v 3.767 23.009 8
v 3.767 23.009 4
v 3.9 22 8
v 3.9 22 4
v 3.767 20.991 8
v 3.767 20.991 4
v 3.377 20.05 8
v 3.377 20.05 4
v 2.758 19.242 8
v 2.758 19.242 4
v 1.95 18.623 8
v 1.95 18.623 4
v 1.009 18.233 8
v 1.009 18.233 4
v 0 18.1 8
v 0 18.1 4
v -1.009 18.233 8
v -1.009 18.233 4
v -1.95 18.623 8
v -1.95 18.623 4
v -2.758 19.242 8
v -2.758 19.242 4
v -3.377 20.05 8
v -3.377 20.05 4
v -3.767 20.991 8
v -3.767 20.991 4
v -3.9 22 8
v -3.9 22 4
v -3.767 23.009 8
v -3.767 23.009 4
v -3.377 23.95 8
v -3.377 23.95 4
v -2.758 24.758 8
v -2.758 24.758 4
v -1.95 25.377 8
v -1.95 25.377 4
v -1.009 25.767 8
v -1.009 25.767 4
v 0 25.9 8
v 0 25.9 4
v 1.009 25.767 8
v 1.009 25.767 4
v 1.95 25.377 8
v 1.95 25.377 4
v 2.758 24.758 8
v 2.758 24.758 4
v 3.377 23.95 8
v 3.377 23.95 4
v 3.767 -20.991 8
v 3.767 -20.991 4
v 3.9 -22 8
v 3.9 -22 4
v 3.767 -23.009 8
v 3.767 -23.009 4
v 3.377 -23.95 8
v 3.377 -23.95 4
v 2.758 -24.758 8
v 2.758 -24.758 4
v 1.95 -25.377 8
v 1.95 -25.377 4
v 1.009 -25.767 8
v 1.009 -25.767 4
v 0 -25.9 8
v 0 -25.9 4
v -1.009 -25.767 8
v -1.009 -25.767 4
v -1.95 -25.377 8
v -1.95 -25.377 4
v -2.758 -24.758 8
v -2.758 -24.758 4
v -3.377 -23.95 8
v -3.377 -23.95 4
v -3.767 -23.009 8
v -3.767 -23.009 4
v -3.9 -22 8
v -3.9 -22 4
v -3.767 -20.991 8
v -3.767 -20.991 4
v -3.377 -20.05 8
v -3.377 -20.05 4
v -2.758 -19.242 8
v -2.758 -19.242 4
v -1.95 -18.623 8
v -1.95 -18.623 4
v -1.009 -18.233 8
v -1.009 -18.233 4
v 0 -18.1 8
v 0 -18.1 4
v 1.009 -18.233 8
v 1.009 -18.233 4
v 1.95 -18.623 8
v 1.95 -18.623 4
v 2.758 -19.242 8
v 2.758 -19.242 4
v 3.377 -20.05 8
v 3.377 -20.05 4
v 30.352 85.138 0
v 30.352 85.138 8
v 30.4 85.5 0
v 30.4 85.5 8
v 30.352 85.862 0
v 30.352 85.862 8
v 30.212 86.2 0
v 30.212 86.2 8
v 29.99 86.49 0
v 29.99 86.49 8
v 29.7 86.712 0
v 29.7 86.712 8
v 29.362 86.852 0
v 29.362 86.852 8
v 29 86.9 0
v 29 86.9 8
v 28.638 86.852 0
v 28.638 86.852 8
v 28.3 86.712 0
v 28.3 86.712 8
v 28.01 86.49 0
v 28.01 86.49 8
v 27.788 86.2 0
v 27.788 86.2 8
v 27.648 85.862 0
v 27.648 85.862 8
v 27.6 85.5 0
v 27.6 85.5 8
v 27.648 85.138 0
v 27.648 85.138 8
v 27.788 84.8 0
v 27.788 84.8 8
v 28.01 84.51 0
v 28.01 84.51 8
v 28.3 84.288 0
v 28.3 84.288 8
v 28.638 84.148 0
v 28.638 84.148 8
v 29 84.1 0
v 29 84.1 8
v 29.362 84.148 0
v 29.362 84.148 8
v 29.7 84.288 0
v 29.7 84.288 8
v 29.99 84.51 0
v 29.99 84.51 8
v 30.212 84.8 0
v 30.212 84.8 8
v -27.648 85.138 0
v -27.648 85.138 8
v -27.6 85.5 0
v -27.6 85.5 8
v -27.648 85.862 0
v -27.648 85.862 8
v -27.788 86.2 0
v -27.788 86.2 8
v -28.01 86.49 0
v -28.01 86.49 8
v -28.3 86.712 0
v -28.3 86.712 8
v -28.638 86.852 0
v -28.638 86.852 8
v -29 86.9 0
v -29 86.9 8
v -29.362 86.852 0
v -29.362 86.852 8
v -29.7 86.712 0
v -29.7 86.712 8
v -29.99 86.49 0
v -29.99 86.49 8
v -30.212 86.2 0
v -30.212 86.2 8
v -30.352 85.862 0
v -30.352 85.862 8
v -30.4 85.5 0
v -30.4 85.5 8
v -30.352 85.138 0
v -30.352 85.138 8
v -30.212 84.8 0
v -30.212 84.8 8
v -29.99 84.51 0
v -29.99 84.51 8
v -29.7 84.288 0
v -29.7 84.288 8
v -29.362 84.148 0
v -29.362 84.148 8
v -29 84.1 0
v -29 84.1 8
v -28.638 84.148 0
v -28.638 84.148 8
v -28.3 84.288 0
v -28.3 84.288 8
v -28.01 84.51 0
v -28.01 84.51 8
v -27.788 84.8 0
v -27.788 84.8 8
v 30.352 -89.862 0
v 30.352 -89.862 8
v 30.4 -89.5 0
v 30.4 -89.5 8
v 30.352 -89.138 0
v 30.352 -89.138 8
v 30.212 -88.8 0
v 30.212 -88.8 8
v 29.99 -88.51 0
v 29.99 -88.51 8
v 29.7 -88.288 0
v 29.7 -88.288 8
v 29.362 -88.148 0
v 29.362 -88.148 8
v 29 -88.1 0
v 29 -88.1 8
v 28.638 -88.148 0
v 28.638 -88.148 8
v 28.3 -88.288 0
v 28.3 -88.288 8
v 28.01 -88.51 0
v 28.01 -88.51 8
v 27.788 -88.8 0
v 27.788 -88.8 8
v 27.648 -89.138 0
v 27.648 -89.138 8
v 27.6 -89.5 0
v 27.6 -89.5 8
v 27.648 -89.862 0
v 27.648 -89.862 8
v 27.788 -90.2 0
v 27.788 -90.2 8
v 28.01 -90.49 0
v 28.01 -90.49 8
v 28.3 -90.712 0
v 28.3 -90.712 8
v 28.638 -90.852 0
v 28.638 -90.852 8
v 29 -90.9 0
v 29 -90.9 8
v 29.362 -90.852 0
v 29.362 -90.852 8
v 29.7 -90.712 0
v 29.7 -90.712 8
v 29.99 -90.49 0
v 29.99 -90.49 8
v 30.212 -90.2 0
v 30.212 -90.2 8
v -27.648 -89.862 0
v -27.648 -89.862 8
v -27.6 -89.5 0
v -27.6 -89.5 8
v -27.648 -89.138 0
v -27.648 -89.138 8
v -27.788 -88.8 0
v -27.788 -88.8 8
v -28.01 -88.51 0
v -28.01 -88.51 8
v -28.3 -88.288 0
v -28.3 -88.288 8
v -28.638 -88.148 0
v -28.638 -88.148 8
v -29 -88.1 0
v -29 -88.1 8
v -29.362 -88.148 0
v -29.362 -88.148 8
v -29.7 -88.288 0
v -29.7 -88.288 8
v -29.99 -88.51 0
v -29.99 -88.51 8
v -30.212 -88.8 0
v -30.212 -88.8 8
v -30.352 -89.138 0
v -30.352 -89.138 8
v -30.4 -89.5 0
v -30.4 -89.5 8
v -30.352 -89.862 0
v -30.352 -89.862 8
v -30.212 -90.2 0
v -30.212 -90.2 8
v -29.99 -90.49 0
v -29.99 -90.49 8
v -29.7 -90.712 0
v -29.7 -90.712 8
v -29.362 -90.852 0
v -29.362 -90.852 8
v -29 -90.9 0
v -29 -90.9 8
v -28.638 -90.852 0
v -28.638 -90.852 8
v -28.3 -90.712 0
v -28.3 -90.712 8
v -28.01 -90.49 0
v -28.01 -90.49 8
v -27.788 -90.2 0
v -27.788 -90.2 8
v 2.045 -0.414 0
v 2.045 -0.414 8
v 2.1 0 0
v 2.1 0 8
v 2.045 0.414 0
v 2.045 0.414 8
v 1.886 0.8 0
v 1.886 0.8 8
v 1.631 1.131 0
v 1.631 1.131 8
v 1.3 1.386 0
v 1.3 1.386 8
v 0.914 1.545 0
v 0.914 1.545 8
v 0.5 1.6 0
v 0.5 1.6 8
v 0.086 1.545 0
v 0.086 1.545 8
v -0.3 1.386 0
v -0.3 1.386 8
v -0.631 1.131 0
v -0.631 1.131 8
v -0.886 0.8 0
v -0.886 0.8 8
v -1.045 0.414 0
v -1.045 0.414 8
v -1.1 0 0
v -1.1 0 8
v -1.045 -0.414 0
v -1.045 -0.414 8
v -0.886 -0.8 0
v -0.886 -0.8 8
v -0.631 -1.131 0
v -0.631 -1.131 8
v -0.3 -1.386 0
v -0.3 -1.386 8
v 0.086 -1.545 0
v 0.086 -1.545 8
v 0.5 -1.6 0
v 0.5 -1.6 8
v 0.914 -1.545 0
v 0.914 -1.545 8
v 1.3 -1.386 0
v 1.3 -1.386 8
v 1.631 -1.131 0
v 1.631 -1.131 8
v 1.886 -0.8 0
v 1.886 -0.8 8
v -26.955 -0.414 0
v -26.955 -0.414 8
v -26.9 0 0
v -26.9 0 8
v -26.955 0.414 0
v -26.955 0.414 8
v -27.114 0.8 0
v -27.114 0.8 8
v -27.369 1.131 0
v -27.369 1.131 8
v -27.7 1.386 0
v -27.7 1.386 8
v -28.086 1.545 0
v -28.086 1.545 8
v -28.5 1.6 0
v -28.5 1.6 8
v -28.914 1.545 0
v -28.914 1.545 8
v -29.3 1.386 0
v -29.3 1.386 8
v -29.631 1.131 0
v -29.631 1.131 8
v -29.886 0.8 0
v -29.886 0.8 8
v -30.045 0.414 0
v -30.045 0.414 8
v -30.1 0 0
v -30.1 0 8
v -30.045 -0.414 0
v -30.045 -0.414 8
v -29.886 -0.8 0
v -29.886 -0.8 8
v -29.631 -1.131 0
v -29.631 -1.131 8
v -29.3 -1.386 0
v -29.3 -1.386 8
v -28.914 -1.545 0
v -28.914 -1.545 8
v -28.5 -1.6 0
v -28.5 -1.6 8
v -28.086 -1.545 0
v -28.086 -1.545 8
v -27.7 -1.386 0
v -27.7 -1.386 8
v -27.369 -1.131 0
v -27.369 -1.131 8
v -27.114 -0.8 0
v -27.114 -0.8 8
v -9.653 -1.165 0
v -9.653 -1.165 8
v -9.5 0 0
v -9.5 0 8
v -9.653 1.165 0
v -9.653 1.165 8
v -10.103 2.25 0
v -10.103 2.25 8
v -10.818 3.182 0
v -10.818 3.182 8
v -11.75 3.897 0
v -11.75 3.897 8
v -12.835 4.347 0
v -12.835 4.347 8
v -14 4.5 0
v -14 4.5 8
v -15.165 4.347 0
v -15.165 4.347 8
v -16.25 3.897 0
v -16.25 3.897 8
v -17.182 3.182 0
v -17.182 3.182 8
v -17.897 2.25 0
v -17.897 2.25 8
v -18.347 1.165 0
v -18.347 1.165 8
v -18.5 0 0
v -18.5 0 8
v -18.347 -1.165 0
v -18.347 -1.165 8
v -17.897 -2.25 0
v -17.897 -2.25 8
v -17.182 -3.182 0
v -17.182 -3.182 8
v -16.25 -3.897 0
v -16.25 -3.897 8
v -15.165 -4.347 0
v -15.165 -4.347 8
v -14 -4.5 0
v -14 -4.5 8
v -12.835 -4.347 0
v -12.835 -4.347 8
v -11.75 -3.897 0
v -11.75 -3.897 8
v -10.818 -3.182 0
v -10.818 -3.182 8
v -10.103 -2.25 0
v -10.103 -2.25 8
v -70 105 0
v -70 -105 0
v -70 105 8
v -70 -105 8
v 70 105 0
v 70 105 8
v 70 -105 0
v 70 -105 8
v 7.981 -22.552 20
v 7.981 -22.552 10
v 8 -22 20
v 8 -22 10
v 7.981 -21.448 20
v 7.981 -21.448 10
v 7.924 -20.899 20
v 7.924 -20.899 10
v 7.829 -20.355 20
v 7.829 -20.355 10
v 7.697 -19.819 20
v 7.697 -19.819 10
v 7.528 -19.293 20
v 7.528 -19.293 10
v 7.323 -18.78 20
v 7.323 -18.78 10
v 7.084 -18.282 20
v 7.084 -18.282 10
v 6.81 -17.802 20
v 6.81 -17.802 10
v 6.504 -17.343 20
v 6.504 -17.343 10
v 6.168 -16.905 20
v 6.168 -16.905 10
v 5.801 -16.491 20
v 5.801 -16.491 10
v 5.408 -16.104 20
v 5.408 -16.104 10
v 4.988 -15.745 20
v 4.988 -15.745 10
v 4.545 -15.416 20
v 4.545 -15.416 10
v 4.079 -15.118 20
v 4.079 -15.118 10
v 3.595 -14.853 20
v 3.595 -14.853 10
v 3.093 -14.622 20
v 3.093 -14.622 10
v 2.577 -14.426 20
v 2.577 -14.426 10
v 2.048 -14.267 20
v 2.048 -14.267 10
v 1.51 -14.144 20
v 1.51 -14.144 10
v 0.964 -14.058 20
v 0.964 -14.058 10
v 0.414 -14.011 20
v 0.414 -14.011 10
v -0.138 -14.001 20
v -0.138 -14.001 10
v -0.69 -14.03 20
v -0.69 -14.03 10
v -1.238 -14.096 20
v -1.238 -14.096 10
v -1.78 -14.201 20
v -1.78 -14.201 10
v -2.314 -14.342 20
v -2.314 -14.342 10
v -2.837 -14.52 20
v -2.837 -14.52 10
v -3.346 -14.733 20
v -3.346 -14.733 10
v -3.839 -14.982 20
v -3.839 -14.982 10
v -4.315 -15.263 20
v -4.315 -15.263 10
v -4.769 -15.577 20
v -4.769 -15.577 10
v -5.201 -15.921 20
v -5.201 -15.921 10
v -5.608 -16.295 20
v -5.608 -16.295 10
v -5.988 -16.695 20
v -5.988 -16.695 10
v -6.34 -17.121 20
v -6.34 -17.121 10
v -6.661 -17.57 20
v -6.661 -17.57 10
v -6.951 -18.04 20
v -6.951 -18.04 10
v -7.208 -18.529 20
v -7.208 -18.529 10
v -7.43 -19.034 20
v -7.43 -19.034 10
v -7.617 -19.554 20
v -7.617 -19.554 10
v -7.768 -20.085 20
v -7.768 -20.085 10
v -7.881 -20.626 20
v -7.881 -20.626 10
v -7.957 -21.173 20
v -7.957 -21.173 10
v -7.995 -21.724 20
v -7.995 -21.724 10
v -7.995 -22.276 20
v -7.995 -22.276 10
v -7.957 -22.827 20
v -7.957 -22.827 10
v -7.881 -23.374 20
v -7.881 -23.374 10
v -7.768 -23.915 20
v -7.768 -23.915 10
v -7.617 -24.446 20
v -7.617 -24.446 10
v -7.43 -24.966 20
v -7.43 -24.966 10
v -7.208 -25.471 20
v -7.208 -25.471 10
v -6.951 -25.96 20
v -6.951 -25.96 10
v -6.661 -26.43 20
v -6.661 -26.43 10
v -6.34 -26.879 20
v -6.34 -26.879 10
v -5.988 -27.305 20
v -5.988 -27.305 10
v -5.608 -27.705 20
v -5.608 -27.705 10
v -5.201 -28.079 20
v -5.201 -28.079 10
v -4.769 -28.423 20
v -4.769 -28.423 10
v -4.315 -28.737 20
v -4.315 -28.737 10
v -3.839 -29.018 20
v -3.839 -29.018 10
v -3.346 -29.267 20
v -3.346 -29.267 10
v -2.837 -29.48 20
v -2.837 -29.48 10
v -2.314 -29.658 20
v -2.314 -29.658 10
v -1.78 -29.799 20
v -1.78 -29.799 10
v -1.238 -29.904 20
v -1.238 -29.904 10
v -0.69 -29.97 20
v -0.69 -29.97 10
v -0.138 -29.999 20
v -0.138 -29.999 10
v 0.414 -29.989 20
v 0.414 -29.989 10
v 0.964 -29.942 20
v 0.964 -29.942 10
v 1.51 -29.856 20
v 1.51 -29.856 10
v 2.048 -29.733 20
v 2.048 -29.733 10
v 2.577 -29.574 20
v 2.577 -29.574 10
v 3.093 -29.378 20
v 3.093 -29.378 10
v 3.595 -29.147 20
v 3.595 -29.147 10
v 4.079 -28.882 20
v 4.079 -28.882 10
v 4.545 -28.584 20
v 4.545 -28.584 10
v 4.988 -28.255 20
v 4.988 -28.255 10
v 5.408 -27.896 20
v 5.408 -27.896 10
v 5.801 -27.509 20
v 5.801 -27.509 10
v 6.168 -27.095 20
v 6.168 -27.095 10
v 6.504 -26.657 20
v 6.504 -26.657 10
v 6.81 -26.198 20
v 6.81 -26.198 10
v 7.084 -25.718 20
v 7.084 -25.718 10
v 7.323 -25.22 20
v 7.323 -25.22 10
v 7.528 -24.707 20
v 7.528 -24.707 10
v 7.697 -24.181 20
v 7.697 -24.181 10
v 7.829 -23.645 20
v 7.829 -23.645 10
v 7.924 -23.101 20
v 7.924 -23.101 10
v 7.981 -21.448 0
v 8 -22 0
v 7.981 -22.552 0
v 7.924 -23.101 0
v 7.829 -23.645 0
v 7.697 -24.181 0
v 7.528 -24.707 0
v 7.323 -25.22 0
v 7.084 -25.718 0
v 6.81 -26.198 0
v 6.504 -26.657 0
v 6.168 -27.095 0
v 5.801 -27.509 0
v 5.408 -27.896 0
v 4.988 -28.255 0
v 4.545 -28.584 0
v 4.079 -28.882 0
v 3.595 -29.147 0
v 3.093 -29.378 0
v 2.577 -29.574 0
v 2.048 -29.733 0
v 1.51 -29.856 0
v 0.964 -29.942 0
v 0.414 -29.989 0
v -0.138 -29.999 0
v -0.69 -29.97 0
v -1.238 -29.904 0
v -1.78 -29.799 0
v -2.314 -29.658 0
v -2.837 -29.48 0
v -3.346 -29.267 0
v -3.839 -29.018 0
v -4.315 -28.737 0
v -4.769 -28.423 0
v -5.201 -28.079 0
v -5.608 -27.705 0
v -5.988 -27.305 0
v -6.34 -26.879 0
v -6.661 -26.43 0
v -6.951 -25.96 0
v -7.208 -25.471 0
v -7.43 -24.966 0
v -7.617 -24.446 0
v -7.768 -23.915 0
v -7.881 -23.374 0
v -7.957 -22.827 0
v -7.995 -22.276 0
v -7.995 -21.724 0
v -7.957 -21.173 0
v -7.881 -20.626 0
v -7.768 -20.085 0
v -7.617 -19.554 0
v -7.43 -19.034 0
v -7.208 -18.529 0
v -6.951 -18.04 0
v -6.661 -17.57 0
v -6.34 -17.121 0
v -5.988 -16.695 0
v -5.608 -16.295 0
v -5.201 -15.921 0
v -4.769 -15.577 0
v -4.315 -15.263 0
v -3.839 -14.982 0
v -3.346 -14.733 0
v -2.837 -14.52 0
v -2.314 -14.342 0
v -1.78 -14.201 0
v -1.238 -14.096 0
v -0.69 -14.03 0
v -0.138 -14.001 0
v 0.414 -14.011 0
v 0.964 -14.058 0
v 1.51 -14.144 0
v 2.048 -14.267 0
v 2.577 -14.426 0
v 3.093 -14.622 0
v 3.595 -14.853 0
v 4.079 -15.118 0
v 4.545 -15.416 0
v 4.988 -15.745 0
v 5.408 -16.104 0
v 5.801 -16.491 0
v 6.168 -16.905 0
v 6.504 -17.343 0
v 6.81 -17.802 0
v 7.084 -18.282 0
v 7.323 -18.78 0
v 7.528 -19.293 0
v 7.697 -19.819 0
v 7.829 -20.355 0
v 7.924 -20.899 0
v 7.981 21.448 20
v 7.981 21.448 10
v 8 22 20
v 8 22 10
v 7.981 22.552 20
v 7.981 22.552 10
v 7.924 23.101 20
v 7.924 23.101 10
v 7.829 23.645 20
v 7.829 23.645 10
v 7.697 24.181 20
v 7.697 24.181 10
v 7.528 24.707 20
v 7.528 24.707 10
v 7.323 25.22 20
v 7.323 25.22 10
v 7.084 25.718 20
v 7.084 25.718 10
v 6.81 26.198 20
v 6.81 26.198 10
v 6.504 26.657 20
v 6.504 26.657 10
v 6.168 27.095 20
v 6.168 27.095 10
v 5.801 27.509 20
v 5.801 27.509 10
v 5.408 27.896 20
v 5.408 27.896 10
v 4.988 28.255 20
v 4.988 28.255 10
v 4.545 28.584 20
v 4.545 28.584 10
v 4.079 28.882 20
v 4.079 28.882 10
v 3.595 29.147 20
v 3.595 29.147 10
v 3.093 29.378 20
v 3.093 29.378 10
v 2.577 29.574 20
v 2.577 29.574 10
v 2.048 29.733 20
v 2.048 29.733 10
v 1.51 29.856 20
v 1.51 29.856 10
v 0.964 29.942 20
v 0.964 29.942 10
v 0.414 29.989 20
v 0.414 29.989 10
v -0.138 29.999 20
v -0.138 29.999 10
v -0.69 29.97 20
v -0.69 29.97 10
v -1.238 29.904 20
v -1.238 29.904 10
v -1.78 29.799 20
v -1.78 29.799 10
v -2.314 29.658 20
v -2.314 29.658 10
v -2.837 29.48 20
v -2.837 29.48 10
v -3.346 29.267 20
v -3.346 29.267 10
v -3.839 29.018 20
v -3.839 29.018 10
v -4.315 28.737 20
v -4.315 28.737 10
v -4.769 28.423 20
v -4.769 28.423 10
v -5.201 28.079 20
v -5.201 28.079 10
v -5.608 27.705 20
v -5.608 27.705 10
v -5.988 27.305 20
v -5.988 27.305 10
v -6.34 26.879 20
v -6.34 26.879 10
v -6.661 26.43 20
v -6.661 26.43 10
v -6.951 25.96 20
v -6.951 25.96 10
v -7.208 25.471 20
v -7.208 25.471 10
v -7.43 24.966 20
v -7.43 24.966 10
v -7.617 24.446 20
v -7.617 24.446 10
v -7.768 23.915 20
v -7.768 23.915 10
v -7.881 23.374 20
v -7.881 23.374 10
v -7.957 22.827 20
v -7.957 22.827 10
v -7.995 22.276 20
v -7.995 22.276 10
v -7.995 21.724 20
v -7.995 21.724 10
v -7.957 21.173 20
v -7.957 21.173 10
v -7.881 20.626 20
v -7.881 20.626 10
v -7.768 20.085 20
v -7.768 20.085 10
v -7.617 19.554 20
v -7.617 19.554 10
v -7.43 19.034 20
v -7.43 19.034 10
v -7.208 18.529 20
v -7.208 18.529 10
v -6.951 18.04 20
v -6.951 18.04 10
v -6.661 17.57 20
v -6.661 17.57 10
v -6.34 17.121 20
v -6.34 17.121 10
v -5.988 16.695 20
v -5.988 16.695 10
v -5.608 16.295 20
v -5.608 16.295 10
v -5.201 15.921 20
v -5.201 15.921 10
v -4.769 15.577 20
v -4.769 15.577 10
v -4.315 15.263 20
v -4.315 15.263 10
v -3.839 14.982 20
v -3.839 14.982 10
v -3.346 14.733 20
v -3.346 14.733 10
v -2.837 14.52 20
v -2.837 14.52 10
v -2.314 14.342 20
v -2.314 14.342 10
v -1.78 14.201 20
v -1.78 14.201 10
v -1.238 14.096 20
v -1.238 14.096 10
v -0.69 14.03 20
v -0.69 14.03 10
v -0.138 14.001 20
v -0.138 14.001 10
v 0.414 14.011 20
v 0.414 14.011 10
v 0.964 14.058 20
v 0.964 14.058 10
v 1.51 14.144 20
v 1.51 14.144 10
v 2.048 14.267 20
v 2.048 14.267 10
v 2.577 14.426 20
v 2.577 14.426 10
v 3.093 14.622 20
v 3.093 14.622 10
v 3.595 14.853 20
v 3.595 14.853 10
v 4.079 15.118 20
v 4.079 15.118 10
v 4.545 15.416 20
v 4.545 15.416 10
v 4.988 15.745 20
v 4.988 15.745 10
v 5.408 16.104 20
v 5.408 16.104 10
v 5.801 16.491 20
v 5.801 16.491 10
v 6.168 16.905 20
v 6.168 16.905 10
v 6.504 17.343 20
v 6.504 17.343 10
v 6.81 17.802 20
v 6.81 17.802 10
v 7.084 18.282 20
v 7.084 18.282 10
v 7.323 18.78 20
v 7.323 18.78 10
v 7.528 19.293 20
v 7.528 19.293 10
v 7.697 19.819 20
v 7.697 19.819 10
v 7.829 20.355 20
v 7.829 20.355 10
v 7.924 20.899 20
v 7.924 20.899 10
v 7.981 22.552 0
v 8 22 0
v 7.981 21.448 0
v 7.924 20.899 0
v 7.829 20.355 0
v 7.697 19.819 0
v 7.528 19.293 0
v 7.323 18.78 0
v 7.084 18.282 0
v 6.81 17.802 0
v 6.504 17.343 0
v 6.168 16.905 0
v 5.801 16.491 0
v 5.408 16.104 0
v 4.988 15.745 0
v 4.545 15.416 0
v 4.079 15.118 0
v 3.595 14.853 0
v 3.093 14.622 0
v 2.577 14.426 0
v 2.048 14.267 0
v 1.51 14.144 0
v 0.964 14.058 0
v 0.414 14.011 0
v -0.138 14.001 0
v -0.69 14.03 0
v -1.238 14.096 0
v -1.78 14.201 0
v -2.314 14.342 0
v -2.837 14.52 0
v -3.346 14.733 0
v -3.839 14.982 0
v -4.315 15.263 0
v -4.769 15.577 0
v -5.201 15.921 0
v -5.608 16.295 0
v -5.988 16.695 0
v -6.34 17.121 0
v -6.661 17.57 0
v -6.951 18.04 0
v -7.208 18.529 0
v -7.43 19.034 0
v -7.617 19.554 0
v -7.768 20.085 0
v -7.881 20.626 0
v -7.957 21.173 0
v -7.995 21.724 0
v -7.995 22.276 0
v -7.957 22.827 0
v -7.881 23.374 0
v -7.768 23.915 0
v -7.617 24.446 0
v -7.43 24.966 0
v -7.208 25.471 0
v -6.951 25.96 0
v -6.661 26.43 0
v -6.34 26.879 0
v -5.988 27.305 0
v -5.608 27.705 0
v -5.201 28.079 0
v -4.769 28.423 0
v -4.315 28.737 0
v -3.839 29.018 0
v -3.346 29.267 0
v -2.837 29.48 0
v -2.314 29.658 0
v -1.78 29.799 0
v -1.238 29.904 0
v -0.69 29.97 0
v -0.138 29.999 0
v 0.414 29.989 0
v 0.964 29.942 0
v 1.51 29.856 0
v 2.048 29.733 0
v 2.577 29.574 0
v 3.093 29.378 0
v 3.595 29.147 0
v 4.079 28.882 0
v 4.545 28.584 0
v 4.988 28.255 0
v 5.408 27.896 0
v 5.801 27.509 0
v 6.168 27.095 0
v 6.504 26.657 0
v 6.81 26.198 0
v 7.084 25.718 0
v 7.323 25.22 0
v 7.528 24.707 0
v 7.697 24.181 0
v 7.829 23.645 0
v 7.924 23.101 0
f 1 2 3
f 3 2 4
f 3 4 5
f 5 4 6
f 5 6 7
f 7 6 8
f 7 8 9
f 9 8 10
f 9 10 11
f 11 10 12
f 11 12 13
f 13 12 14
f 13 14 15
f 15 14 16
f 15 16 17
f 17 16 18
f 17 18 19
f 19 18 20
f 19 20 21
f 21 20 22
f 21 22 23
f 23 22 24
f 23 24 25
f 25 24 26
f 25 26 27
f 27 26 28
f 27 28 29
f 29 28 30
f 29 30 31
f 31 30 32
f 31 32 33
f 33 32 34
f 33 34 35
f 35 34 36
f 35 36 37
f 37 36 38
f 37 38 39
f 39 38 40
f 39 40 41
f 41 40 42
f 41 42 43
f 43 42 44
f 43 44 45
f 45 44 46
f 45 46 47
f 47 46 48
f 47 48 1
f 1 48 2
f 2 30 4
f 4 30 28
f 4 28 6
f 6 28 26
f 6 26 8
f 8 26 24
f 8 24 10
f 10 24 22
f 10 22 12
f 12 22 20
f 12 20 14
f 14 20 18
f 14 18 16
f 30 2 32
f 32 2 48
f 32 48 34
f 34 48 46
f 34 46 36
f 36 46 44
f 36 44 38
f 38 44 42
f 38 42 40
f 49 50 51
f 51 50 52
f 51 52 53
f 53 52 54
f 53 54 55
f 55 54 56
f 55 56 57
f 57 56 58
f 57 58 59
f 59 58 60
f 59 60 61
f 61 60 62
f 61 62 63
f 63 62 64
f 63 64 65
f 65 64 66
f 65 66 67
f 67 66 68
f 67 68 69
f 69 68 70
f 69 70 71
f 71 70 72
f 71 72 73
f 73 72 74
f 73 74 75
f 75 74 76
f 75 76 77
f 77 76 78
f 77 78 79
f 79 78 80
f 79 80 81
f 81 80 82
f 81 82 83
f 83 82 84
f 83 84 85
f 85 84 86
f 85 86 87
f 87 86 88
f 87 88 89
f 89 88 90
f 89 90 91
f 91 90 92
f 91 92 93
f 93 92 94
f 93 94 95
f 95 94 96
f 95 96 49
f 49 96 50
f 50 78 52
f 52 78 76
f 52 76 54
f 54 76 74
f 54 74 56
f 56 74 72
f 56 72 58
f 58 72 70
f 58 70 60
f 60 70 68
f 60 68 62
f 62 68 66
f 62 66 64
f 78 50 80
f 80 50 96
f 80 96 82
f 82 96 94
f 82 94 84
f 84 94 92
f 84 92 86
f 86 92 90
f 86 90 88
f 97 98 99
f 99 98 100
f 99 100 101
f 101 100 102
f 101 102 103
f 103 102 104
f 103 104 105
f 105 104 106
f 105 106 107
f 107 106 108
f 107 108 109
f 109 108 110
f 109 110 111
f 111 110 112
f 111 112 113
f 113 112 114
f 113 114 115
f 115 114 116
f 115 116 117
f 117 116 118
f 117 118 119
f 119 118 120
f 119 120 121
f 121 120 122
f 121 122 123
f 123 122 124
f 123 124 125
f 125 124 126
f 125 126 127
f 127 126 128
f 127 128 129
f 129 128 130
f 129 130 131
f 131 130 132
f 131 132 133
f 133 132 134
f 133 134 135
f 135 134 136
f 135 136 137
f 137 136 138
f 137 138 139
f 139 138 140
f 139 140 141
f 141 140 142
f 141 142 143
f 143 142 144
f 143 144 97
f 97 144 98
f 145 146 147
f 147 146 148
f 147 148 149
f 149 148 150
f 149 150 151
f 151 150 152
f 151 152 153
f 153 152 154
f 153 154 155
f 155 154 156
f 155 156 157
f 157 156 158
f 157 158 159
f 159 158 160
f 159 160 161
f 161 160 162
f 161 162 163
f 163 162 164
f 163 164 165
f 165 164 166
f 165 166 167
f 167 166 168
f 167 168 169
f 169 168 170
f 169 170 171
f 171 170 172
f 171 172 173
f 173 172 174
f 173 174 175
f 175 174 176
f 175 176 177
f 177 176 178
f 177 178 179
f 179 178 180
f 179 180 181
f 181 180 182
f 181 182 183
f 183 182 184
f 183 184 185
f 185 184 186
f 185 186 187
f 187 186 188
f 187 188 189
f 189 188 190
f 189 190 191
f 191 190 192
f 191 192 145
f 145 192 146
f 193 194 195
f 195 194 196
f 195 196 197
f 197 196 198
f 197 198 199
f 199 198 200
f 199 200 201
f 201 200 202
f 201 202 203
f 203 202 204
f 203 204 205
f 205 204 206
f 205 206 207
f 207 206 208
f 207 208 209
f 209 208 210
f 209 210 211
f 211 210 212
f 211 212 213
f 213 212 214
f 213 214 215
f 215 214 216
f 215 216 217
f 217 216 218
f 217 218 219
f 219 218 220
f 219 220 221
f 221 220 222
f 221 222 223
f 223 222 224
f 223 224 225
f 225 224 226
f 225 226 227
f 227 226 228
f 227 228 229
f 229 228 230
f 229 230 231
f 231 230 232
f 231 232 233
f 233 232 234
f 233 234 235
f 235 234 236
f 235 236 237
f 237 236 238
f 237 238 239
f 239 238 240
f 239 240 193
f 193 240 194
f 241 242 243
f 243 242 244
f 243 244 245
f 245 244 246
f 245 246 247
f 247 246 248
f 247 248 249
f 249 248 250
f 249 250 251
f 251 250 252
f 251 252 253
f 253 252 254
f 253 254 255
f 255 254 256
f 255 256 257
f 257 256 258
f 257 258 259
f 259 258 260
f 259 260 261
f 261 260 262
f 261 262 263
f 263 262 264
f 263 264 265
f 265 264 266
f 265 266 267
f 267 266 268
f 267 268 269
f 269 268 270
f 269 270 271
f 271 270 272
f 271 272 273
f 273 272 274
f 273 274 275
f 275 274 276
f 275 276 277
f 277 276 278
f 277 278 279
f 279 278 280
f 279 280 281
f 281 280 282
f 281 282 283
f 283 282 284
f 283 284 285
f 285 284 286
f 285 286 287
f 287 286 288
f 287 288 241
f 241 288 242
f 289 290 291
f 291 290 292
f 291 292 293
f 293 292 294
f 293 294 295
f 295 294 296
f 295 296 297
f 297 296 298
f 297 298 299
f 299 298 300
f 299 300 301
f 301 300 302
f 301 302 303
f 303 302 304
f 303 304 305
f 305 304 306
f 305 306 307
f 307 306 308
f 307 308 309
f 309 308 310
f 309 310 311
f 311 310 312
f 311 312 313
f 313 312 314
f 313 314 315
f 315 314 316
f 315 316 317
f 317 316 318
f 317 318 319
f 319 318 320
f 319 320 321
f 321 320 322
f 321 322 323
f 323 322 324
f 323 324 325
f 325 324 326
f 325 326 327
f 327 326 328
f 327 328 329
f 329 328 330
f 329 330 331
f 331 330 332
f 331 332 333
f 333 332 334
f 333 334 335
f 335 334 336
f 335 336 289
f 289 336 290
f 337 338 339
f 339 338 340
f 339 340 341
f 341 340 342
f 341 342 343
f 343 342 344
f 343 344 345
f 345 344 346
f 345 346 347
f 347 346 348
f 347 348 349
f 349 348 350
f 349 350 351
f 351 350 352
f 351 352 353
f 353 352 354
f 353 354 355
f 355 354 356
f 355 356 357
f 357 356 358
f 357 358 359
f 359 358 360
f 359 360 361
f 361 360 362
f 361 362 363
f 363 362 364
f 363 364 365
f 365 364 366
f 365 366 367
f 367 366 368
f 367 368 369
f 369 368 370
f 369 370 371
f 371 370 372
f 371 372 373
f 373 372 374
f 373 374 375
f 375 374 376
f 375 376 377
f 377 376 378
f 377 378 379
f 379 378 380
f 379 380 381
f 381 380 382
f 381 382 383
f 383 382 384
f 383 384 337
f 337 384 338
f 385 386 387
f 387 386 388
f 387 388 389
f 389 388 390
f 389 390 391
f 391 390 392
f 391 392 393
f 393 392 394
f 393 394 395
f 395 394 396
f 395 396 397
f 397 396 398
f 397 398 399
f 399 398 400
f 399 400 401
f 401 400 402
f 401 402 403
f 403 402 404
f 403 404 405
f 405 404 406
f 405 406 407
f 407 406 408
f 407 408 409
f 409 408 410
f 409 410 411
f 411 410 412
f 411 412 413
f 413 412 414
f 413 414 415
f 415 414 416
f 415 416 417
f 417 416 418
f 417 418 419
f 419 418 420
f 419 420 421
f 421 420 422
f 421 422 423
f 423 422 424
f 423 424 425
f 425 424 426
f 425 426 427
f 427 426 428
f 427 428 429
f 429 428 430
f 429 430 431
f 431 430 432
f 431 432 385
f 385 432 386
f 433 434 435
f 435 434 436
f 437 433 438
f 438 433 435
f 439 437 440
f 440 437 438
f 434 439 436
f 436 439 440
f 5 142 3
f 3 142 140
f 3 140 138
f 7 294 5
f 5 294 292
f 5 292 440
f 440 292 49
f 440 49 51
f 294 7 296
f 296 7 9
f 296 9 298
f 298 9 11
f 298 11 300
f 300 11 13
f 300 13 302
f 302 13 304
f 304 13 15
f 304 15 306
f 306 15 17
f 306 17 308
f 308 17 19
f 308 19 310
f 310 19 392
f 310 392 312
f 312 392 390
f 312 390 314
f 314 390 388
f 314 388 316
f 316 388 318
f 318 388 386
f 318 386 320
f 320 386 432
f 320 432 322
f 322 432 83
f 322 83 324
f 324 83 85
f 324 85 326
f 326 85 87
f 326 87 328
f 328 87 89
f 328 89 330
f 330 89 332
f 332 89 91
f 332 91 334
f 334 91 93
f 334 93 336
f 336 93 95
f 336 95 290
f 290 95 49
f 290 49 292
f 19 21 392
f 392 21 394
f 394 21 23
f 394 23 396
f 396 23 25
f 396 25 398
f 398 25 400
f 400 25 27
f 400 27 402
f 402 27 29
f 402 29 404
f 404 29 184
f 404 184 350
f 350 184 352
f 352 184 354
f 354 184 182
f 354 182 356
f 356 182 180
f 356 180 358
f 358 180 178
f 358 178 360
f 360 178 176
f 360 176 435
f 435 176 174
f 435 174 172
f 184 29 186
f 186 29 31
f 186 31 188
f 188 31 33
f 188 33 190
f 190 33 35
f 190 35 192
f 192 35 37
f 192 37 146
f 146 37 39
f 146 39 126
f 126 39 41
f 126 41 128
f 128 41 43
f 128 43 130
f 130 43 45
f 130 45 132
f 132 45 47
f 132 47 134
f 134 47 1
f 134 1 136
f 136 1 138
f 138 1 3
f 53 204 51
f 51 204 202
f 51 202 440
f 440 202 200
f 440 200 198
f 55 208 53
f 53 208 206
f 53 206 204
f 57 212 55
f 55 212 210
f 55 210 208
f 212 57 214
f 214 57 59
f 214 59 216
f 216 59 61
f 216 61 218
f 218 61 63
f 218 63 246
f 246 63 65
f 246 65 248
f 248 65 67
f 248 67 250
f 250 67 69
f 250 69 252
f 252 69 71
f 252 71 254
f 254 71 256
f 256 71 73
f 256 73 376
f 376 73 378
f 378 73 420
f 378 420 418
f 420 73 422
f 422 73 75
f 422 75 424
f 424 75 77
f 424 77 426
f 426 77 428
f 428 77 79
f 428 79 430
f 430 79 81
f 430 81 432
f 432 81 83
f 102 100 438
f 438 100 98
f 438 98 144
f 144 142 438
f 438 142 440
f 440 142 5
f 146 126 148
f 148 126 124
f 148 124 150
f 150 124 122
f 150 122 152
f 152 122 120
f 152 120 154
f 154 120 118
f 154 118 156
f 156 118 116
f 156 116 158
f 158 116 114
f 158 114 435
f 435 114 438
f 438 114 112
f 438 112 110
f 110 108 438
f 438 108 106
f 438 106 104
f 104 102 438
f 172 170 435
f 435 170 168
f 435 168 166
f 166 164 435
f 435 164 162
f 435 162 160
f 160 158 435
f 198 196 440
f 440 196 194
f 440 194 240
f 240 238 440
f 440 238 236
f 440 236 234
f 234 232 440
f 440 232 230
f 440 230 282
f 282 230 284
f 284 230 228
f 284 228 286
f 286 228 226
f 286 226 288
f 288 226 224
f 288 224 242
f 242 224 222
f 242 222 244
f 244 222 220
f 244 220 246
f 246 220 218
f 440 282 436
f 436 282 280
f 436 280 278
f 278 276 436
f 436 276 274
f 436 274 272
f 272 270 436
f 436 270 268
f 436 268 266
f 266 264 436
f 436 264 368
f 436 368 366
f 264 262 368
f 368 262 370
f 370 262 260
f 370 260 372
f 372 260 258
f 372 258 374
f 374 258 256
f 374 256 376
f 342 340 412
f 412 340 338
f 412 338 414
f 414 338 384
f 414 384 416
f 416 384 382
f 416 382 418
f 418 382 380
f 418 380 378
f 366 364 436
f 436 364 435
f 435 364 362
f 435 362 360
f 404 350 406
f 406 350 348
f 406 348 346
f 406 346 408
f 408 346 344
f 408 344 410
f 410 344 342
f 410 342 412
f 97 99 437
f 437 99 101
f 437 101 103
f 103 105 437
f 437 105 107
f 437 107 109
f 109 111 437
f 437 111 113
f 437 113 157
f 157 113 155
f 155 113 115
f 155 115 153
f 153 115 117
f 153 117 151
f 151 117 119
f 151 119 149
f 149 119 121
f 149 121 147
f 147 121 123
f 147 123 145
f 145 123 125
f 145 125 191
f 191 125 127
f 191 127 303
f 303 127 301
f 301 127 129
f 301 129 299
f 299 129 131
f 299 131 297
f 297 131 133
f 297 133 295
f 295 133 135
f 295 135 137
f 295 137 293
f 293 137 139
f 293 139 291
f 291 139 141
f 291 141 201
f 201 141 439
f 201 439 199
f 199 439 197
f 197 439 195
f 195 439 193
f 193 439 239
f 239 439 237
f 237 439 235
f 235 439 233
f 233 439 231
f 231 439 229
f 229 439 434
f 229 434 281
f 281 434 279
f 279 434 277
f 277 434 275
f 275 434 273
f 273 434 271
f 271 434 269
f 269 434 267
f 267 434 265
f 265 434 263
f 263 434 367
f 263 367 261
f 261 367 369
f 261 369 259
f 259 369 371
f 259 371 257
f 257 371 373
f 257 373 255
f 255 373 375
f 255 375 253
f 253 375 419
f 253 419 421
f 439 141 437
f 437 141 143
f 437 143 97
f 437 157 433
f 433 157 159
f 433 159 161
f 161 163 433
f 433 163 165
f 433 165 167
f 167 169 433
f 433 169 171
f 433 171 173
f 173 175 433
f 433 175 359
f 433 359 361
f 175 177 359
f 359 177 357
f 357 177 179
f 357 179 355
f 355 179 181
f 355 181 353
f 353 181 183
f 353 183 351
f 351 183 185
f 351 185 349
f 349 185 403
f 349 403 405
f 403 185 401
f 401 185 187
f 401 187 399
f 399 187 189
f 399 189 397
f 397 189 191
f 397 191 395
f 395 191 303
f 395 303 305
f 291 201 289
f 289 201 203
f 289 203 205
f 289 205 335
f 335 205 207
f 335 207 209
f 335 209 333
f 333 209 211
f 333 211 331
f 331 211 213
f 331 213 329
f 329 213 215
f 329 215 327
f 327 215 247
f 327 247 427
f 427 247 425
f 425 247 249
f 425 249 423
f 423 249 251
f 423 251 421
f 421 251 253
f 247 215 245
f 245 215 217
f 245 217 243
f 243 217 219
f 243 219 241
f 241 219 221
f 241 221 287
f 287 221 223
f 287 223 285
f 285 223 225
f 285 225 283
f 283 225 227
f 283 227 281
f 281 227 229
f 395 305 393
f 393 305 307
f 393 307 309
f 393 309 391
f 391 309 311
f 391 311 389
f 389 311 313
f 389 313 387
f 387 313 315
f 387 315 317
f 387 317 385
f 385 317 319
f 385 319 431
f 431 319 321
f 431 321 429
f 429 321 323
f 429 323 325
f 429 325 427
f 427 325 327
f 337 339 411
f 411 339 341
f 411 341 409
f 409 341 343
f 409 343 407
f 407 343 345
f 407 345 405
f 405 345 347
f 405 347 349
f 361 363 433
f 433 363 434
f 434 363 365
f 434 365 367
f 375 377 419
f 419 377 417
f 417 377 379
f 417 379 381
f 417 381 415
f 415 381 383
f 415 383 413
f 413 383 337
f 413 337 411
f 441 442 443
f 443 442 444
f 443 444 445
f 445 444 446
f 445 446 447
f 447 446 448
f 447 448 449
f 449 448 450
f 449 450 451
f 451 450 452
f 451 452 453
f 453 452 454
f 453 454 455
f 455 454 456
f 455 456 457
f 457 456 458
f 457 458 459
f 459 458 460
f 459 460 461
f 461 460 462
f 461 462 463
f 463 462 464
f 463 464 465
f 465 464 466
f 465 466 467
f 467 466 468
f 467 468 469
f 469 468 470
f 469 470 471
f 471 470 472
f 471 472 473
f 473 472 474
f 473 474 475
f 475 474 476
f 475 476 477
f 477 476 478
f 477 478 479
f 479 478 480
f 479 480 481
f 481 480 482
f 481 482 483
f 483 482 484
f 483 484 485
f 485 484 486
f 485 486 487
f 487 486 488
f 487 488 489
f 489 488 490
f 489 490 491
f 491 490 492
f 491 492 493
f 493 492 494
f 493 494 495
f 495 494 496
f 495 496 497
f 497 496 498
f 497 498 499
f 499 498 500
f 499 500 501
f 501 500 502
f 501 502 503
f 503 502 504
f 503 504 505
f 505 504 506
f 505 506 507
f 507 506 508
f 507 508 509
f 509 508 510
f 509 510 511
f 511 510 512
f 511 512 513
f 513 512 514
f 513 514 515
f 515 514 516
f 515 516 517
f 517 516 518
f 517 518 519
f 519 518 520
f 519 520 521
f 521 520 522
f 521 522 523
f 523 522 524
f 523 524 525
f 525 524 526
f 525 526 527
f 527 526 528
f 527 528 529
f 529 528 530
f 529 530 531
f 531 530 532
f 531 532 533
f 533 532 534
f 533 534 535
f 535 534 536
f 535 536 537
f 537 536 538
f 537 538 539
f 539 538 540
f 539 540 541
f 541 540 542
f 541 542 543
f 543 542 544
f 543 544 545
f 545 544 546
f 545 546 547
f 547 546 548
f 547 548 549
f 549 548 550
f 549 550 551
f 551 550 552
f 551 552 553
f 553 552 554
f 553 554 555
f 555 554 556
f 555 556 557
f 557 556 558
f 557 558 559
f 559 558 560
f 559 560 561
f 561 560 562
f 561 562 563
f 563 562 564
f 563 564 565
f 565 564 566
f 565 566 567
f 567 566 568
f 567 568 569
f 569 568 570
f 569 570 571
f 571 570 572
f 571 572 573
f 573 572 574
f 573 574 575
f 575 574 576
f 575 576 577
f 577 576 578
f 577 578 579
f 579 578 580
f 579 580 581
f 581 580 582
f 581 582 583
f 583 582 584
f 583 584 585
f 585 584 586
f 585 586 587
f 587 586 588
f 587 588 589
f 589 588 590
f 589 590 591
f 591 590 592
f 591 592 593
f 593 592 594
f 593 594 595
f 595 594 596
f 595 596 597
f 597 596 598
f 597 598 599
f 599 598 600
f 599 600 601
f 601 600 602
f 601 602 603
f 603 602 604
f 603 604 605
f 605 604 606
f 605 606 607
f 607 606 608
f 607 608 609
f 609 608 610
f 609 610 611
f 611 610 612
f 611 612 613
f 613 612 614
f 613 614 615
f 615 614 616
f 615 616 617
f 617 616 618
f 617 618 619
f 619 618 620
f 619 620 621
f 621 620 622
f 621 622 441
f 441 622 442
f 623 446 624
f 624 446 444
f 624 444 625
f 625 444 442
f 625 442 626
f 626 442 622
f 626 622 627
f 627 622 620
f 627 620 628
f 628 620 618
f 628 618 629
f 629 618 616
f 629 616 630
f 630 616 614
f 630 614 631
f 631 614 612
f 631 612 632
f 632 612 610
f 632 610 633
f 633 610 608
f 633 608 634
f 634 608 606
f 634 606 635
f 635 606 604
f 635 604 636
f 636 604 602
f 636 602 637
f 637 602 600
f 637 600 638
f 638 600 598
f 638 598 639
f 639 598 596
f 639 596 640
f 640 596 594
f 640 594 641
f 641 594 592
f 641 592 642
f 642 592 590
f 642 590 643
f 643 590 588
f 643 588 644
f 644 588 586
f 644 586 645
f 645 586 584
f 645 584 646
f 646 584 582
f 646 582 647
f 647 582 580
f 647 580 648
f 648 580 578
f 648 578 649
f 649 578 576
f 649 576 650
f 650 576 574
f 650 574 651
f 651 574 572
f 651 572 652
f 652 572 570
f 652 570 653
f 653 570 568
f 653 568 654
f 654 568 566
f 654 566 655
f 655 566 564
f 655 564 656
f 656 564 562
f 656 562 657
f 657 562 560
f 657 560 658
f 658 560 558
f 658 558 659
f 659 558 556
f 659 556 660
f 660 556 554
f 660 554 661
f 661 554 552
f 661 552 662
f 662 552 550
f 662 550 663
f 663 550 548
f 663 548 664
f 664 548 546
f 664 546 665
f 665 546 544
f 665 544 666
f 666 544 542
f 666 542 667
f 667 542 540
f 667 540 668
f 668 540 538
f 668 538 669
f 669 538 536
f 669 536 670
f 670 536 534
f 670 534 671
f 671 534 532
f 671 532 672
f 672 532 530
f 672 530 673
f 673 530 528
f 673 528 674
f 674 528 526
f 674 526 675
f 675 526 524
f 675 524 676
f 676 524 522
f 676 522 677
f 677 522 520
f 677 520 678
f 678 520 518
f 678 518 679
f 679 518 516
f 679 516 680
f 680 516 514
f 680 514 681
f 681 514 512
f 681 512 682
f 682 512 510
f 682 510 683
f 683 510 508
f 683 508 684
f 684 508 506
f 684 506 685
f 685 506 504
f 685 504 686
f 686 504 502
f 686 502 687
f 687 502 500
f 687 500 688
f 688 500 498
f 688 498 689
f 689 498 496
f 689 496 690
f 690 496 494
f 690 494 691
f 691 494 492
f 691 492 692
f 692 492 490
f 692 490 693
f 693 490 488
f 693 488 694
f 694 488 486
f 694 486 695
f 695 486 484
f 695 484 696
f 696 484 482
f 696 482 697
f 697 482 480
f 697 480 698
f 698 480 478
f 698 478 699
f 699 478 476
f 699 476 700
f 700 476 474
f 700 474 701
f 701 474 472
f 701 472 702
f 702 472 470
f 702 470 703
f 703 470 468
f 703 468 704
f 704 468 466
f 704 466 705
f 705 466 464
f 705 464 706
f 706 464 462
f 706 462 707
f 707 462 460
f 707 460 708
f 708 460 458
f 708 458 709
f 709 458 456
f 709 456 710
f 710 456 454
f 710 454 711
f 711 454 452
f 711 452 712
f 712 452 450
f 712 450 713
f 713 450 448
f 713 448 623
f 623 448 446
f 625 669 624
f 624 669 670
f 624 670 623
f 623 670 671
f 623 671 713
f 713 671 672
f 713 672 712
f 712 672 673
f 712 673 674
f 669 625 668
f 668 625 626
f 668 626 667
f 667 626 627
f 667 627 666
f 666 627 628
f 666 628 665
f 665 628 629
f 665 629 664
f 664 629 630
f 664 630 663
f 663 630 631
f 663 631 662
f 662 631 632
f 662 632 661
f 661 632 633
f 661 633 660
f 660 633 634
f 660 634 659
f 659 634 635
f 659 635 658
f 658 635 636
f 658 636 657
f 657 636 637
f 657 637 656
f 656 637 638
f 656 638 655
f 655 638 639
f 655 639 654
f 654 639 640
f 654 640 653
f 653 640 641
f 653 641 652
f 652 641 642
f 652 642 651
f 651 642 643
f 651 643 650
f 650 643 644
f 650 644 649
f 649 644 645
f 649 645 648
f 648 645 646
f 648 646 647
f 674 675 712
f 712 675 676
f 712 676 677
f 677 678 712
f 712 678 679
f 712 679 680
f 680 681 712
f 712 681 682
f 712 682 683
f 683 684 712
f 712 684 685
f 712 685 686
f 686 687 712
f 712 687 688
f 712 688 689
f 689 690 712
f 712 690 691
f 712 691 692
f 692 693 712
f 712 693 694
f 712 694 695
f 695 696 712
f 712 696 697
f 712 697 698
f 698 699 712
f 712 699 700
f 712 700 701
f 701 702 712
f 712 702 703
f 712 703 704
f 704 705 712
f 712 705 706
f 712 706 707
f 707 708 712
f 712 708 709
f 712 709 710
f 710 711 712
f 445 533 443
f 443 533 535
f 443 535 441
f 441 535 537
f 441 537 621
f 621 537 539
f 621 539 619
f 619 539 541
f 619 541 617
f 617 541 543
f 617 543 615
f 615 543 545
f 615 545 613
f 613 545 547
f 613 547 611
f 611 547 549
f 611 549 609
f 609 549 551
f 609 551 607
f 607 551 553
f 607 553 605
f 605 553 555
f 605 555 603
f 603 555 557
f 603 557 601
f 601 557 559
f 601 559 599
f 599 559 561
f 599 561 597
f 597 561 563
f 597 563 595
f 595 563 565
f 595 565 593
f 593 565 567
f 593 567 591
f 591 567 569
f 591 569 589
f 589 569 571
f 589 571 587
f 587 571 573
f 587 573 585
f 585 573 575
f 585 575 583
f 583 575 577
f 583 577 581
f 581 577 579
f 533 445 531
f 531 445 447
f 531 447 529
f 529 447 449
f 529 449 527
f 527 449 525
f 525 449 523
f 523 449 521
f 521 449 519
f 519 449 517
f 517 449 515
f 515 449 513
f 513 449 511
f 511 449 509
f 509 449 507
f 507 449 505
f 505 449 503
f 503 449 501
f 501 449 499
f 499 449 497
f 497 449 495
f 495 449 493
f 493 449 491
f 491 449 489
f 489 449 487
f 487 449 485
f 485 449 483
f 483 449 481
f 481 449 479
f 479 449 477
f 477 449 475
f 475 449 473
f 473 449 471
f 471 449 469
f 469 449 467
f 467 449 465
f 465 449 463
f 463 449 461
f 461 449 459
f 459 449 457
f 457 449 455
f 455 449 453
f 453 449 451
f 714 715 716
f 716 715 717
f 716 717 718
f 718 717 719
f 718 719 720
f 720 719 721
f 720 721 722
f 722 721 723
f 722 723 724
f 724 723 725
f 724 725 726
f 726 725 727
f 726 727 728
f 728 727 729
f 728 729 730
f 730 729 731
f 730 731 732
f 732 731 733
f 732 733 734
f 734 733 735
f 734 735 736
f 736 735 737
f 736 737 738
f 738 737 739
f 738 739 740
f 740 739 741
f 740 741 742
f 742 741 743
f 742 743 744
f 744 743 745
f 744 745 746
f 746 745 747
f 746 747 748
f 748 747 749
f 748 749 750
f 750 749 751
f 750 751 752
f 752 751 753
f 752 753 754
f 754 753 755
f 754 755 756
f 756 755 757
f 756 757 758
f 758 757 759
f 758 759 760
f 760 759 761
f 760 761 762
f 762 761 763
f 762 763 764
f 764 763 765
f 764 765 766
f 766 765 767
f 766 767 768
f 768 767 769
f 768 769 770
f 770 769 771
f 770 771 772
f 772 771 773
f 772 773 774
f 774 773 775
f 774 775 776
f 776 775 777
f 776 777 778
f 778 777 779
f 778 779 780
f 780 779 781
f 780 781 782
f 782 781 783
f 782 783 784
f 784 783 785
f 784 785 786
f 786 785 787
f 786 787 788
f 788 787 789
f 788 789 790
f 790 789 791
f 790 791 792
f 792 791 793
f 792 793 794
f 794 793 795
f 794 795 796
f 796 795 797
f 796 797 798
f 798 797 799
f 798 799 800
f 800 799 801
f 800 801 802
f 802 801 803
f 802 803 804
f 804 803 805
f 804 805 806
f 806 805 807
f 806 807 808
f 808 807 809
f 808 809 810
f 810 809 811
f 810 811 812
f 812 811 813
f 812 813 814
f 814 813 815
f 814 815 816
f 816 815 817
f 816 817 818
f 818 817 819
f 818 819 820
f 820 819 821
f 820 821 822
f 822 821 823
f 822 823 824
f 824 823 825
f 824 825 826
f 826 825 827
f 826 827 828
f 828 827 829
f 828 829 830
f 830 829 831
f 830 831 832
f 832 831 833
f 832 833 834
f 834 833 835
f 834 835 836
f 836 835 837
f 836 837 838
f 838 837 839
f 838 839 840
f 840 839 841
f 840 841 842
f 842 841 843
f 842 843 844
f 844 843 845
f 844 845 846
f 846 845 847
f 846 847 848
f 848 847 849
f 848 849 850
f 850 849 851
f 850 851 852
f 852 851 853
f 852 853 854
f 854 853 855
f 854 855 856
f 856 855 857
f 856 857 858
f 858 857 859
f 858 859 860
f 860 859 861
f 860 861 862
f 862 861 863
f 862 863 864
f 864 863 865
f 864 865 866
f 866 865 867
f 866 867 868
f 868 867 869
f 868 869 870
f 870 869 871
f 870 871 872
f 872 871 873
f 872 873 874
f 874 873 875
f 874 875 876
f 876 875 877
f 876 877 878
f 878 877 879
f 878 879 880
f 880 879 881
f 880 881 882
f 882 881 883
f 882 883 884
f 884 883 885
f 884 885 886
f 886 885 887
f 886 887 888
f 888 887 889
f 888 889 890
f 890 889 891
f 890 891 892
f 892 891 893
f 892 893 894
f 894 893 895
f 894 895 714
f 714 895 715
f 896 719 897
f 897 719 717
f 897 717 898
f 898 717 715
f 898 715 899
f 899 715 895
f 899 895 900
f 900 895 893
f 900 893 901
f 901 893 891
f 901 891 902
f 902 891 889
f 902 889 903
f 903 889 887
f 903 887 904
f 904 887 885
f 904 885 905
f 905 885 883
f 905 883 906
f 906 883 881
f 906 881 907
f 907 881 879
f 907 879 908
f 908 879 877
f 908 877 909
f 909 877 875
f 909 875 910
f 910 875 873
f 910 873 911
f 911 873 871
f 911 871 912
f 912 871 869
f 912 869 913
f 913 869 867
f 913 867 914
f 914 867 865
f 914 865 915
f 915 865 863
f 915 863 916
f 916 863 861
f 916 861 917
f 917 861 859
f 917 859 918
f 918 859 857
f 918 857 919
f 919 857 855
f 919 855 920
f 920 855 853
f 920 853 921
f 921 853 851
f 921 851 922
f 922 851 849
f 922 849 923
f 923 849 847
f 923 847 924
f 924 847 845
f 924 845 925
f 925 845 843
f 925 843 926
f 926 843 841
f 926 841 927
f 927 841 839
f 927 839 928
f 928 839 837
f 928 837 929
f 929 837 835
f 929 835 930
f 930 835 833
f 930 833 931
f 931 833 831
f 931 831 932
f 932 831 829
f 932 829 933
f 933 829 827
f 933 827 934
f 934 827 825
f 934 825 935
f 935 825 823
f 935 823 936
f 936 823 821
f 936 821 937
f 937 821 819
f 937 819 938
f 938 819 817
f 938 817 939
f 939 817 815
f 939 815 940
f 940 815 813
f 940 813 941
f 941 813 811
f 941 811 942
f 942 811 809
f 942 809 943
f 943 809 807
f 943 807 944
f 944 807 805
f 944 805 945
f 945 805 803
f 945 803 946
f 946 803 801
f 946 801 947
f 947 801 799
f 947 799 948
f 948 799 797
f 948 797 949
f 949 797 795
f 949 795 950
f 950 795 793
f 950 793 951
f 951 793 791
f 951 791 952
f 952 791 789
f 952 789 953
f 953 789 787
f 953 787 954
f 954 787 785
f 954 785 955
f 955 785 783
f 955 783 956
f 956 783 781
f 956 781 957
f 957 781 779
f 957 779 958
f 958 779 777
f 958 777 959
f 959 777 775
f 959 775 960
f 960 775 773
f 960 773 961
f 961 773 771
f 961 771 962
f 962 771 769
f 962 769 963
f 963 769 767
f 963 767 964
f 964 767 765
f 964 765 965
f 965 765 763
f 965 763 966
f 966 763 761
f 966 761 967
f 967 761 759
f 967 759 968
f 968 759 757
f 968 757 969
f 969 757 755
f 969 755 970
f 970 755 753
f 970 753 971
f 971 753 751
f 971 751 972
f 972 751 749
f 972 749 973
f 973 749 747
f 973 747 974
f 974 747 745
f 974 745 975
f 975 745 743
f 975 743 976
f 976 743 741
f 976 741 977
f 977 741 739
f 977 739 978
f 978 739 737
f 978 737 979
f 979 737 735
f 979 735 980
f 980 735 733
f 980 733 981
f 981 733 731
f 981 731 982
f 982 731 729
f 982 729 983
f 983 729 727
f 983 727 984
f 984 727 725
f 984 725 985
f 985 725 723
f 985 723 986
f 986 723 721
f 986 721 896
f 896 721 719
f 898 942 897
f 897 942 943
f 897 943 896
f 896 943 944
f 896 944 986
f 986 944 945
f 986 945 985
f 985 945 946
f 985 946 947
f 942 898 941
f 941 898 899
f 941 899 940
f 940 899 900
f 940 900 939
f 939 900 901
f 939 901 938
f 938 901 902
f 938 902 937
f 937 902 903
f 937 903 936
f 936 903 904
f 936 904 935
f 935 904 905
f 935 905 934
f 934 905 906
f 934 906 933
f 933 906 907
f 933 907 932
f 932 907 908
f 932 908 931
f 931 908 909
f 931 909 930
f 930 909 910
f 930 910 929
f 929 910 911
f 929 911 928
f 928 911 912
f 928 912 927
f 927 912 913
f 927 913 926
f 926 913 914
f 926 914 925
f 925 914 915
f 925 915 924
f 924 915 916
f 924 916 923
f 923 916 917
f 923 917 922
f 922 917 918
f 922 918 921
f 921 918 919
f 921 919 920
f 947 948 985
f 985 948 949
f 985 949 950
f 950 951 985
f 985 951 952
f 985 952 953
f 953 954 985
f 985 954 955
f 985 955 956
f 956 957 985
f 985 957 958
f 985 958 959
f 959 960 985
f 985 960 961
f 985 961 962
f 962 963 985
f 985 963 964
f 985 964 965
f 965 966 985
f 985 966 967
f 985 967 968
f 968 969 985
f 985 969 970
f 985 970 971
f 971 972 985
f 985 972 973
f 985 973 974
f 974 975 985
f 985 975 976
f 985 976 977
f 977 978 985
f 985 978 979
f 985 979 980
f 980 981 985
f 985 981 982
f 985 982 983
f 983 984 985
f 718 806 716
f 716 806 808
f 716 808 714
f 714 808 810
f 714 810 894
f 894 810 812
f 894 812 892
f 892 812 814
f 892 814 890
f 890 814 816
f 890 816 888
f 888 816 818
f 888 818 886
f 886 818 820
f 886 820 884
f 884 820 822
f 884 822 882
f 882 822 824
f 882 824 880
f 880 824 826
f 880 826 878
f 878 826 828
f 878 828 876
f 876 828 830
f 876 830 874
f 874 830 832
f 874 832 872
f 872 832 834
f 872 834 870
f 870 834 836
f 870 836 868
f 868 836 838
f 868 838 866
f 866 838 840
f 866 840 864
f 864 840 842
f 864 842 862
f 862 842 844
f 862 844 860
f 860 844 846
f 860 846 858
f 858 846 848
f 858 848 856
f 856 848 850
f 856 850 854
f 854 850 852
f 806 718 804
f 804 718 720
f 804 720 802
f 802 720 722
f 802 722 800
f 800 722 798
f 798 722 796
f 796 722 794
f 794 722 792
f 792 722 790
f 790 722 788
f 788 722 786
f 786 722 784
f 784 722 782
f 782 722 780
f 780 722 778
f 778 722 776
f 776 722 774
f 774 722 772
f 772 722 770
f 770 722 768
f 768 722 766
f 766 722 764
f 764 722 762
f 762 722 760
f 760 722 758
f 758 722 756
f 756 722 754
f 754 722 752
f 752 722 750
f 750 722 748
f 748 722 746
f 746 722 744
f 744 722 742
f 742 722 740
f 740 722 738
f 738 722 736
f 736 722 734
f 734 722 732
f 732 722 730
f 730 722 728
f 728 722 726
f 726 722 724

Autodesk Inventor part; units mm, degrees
ref_plane "YZ Plane" through (0, 0, 0) normal (1, 0, 0) x (0, 1, 0)
sketch "Skizze1" plane through (0, 0, 0) normal (0, 0, 1) x (1, 0, 0)
  line L0 (-70, -105) -> (70, -105)
  line L1 (70, -105) -> (70, 105)
  line L2 (70, 105) -> (-70, 105)
  line L3 (-70, 105) -> (-70, -105)
extrude "Extrusion1" add sketch "Skizze1" along normal blind 8
ref_plane "Arbeitsebene1" through (0, 0, 8) normal (0, 0, 1) x (1, 0, 0)
sketch "Skizze2" plane through (0, 0, 8) normal (0, 0, 1) x (1, 0, 0)
  circle A0 centre (-14, 0) radius 4.5
extrude "Extrusion2" cut sketch "Skizze2" against normal blind 8.2
sketch "Skizze3" plane through (0, 0, 8) normal (0, 0, 1) x (1, 0, 0)
  circle A0 centre (-28.5, 0) radius 1.6
extrude "Extrusion3" cut sketch "Skizze3" against normal blind 8.2
sketch "Skizze4" plane through (0, 0, 8) normal (0, 0, 1) x (1, 0, 0)
  circle A0 centre (0.5, 0) radius 1.6
extrude "Extrusion4" cut sketch "Skizze4" against normal blind 8.2
sketch "Skizze5" plane through (0, 0, 8) normal (0, 0, 1) x (1, 0, 0)
  circle A0 centre (-29, -89.5) radius 1.4
extrude "Extrusion5" cut sketch "Skizze5" against normal blind 8.2
sketch "Skizze6" plane through (0, 0, 8) normal (0, 0, 1) x (1, 0, 0)
  circle A0 centre (29, -89.5) radius 1.4
extrude "Extrusion6" cut sketch "Skizze6" against normal blind 8.2
sketch "Skizze7" plane through (0, 0, 8) normal (0, 0, 1) x (1, 0, 0)
  circle A0 centre (-29, 85.5) radius 1.4
extrude "Extrusion7" cut sketch "Skizze7" against normal blind 8.2
sketch "Skizze8" plane through (0, 0, 8) normal (0, 0, 1) x (1, 0, 0)
  circle A0 centre (29, 85.5) radius 1.4
extrude "Extrusion8" cut sketch "Skizze8" against normal blind 8.2
sketch "Skizze9" plane through (0, 0, 0) normal (0, 0, 1) x (1, 0, 0)
  circle A0 centre (0, -22) radius 8
extrude "Extrusion9" add sketch "Skizze9" along normal blind 20 separate body
sketch "Skizze10" plane through (0, 0, 0) normal (0, 0, 1) x (1, 0, 0)
  circle A0 centre (0, 22) radius 8
extrude "Extrusion10" add sketch "Skizze10" along normal blind 20 separate body
ref_plane "Arbeitsebene2" through (0, 0, 20) normal (0, 0, 1) x (1, 0, 0)
sketch "Skizze11" plane through (0, 0, 20) normal (0, 0, 1) x (1, 0, 0)
  circle A0 centre (0, -22) radius 3.9
extrude "Extrusion11" cut sketch "Skizze11" against normal blind 16 bodies 1
sketch "Skizze12" plane through (0, 0, 20) normal (0, 0, 1) x (1, 0, 0)
  circle A0 centre (0, 22) radius 3.9
extrude "Extrusion12" cut sketch "Skizze12" against normal blind 16 bodies 1
properties part number "Grundplatte_v4"
